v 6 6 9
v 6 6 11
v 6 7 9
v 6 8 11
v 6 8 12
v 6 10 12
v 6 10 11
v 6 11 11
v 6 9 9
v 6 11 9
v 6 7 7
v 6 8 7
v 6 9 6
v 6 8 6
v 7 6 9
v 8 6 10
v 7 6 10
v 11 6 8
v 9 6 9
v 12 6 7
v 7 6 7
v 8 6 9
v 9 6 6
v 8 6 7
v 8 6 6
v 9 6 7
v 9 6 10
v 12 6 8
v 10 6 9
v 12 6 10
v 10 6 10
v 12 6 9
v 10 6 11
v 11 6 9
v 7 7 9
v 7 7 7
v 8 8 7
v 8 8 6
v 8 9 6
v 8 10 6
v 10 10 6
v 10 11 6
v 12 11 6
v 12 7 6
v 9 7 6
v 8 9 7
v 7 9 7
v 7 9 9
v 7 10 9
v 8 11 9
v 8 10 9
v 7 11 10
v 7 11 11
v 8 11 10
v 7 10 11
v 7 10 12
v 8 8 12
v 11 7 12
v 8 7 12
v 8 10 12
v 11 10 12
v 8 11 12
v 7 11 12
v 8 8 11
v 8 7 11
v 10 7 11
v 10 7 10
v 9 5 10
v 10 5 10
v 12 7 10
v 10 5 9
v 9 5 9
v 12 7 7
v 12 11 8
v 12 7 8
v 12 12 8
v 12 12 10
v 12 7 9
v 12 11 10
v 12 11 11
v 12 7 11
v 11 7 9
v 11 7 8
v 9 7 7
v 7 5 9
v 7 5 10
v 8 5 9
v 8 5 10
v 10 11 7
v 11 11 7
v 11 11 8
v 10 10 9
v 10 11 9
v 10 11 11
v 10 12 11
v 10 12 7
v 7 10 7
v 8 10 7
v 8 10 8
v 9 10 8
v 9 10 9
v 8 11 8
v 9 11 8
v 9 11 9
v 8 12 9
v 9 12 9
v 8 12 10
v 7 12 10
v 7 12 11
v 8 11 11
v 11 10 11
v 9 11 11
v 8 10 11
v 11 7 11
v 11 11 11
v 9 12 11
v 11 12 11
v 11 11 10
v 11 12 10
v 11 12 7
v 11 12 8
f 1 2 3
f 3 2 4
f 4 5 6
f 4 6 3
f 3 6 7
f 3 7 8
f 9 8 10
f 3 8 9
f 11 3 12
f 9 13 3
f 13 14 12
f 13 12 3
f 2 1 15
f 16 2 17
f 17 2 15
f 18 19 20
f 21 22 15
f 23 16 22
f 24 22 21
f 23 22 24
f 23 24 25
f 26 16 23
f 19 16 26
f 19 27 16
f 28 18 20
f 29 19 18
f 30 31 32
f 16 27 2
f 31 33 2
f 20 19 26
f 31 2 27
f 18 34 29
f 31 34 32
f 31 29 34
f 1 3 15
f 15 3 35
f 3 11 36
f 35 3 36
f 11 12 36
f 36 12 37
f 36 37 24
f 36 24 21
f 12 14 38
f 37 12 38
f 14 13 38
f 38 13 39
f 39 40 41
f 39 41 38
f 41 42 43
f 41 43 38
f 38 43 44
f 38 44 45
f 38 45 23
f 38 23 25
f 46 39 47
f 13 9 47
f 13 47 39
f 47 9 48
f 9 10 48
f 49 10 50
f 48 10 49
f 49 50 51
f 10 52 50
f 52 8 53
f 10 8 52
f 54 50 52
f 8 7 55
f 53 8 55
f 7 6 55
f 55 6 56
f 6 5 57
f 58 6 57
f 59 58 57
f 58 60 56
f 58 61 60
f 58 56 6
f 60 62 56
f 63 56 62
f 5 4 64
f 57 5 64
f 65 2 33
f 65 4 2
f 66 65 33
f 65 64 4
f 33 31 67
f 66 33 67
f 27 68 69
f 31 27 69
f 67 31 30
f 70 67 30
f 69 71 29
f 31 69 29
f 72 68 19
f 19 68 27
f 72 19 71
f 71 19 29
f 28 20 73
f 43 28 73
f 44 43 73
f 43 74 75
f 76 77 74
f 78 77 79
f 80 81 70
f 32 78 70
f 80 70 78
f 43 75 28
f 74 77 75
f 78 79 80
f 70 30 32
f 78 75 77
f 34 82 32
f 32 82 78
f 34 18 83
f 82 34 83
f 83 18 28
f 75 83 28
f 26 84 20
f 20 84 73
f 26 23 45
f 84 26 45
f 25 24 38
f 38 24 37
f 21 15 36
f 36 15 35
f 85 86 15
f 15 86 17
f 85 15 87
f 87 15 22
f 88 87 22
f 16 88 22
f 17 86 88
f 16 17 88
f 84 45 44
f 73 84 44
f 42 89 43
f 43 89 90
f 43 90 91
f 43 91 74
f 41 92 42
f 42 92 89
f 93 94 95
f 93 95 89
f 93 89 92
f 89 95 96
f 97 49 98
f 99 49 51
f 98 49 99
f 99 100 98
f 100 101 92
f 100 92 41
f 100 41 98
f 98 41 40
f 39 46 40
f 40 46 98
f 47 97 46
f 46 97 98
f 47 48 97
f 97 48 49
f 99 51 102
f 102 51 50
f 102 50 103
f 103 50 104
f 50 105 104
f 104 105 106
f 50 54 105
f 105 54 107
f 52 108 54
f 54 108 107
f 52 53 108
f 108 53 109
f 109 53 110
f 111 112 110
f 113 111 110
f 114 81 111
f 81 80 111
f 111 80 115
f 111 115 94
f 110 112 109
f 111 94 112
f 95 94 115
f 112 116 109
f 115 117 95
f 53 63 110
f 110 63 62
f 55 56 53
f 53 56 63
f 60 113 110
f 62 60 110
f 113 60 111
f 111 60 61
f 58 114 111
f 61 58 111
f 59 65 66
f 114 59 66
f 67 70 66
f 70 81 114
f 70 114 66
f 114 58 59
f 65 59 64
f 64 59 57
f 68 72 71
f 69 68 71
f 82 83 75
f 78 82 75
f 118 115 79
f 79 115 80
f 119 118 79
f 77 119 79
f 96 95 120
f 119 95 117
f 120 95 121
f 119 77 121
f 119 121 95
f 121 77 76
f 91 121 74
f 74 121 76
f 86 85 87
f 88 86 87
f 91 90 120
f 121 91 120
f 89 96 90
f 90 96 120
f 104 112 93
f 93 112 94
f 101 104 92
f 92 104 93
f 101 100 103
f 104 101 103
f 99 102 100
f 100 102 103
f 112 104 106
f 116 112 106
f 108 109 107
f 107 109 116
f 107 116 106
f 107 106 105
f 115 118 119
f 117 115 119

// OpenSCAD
// Create matrix
mr = 	[
[6,6,9],
[6,6,10],
[6,7,7],
[6,7,8],
[6,7,9],
[6,7,10],
[6,8,6],
[6,8,7],
[6,8,8],
[6,8,9],
[6,8,10],
[6,8,11],
[6,9,9],
[6,9,10],
[6,9,11],
[6,10,9],
[6,10,10],
[7,5,9],
[7,6,7],
[7,6,8],
[7,6,9],
[7,6,10],
[7,7,7],
[7,7,8],
[7,7,9],
[7,7,10],
[7,8,6],
[7,8,7],
[7,8,8],
[7,8,9],
[7,8,10],
[7,8,11],
[7,9,7],
[7,9,8],
[7,9,9],
[7,9,10],
[7,9,11],
[7,10,9],
[7,10,10],
[7,10,11],
[7,11,10],
[8,6,6],
[8,6,7],
[8,6,8],
[8,6,9],
[8,6,10],
[8,7,6],
[8,7,7],
[8,7,8],
[8,7,9],
[8,7,10],
[8,7,11],
[8,8,6],
[8,8,7],
[8,8,8],
[8,8,9],
[8,8,10],
[8,8,11],
[8,9,6],
[8,9,7],
[8,9,8],
[8,9,9],
[8,9,10],
[8,9,11],
[8,10,8],
[8,10,9],
[8,10,10],
[8,11,9],
[8,11,10],
[9,5,9],
[9,6,7],
[9,6,8],
[9,6,9],
[9,6,10],
[9,7,6],
[9,7,7],
[9,7,8],
[9,7,9],
[9,7,10],
[9,7,11],
[9,8,6],
[9,8,7],
[9,8,8],
[9,8,9],
[9,8,10],
[9,8,11],
[9,9,6],
[9,9,7],
[9,9,8],
[9,9,9],
[9,9,10],
[9,9,11],
[9,10,9],
[9,10,10],
[10,6,7],
[10,6,8],
[10,6,9],
[10,7,6],
[10,7,7],
[10,7,8],
[10,7,9],
[10,7,10],
[10,7,11],
[10,8,6],
[10,8,7],
[10,8,8],
[10,8,9],
[10,8,10],
[10,8,11],
[10,9,6],
[10,9,7],
[10,9,8],
[10,9,9],
[10,9,10],
[10,9,11],
[10,10,6],
[10,10,7],
[10,10,8],
[10,10,9],
[10,10,10],
[10,11,7],
[10,11,8],
[10,11,9],
[10,11,10],
[11,6,7],
[11,6,9],
[11,7,6],
[11,7,7],
[11,7,8],
[11,7,9],
[11,7,10],
[11,8,6],
[11,8,7],
[11,8,8],
[11,8,9],
[11,8,10],
[11,9,6],
[11,9,7],
[11,9,8],
[11,9,9],
[11,9,10],
[11,10,6],
[11,10,7],
[11,10,8],
[11,10,9],
[11,10,10],
[11,11,8],
[11,11,9],
		];
// Draw cubes
// Z-axis
for (a =[0:len(mr)-1]){
	color([1,0,0]) translate([mr[a][0], mr[a][1], mr[a][2]])cube([1,1,1]);
			
}
